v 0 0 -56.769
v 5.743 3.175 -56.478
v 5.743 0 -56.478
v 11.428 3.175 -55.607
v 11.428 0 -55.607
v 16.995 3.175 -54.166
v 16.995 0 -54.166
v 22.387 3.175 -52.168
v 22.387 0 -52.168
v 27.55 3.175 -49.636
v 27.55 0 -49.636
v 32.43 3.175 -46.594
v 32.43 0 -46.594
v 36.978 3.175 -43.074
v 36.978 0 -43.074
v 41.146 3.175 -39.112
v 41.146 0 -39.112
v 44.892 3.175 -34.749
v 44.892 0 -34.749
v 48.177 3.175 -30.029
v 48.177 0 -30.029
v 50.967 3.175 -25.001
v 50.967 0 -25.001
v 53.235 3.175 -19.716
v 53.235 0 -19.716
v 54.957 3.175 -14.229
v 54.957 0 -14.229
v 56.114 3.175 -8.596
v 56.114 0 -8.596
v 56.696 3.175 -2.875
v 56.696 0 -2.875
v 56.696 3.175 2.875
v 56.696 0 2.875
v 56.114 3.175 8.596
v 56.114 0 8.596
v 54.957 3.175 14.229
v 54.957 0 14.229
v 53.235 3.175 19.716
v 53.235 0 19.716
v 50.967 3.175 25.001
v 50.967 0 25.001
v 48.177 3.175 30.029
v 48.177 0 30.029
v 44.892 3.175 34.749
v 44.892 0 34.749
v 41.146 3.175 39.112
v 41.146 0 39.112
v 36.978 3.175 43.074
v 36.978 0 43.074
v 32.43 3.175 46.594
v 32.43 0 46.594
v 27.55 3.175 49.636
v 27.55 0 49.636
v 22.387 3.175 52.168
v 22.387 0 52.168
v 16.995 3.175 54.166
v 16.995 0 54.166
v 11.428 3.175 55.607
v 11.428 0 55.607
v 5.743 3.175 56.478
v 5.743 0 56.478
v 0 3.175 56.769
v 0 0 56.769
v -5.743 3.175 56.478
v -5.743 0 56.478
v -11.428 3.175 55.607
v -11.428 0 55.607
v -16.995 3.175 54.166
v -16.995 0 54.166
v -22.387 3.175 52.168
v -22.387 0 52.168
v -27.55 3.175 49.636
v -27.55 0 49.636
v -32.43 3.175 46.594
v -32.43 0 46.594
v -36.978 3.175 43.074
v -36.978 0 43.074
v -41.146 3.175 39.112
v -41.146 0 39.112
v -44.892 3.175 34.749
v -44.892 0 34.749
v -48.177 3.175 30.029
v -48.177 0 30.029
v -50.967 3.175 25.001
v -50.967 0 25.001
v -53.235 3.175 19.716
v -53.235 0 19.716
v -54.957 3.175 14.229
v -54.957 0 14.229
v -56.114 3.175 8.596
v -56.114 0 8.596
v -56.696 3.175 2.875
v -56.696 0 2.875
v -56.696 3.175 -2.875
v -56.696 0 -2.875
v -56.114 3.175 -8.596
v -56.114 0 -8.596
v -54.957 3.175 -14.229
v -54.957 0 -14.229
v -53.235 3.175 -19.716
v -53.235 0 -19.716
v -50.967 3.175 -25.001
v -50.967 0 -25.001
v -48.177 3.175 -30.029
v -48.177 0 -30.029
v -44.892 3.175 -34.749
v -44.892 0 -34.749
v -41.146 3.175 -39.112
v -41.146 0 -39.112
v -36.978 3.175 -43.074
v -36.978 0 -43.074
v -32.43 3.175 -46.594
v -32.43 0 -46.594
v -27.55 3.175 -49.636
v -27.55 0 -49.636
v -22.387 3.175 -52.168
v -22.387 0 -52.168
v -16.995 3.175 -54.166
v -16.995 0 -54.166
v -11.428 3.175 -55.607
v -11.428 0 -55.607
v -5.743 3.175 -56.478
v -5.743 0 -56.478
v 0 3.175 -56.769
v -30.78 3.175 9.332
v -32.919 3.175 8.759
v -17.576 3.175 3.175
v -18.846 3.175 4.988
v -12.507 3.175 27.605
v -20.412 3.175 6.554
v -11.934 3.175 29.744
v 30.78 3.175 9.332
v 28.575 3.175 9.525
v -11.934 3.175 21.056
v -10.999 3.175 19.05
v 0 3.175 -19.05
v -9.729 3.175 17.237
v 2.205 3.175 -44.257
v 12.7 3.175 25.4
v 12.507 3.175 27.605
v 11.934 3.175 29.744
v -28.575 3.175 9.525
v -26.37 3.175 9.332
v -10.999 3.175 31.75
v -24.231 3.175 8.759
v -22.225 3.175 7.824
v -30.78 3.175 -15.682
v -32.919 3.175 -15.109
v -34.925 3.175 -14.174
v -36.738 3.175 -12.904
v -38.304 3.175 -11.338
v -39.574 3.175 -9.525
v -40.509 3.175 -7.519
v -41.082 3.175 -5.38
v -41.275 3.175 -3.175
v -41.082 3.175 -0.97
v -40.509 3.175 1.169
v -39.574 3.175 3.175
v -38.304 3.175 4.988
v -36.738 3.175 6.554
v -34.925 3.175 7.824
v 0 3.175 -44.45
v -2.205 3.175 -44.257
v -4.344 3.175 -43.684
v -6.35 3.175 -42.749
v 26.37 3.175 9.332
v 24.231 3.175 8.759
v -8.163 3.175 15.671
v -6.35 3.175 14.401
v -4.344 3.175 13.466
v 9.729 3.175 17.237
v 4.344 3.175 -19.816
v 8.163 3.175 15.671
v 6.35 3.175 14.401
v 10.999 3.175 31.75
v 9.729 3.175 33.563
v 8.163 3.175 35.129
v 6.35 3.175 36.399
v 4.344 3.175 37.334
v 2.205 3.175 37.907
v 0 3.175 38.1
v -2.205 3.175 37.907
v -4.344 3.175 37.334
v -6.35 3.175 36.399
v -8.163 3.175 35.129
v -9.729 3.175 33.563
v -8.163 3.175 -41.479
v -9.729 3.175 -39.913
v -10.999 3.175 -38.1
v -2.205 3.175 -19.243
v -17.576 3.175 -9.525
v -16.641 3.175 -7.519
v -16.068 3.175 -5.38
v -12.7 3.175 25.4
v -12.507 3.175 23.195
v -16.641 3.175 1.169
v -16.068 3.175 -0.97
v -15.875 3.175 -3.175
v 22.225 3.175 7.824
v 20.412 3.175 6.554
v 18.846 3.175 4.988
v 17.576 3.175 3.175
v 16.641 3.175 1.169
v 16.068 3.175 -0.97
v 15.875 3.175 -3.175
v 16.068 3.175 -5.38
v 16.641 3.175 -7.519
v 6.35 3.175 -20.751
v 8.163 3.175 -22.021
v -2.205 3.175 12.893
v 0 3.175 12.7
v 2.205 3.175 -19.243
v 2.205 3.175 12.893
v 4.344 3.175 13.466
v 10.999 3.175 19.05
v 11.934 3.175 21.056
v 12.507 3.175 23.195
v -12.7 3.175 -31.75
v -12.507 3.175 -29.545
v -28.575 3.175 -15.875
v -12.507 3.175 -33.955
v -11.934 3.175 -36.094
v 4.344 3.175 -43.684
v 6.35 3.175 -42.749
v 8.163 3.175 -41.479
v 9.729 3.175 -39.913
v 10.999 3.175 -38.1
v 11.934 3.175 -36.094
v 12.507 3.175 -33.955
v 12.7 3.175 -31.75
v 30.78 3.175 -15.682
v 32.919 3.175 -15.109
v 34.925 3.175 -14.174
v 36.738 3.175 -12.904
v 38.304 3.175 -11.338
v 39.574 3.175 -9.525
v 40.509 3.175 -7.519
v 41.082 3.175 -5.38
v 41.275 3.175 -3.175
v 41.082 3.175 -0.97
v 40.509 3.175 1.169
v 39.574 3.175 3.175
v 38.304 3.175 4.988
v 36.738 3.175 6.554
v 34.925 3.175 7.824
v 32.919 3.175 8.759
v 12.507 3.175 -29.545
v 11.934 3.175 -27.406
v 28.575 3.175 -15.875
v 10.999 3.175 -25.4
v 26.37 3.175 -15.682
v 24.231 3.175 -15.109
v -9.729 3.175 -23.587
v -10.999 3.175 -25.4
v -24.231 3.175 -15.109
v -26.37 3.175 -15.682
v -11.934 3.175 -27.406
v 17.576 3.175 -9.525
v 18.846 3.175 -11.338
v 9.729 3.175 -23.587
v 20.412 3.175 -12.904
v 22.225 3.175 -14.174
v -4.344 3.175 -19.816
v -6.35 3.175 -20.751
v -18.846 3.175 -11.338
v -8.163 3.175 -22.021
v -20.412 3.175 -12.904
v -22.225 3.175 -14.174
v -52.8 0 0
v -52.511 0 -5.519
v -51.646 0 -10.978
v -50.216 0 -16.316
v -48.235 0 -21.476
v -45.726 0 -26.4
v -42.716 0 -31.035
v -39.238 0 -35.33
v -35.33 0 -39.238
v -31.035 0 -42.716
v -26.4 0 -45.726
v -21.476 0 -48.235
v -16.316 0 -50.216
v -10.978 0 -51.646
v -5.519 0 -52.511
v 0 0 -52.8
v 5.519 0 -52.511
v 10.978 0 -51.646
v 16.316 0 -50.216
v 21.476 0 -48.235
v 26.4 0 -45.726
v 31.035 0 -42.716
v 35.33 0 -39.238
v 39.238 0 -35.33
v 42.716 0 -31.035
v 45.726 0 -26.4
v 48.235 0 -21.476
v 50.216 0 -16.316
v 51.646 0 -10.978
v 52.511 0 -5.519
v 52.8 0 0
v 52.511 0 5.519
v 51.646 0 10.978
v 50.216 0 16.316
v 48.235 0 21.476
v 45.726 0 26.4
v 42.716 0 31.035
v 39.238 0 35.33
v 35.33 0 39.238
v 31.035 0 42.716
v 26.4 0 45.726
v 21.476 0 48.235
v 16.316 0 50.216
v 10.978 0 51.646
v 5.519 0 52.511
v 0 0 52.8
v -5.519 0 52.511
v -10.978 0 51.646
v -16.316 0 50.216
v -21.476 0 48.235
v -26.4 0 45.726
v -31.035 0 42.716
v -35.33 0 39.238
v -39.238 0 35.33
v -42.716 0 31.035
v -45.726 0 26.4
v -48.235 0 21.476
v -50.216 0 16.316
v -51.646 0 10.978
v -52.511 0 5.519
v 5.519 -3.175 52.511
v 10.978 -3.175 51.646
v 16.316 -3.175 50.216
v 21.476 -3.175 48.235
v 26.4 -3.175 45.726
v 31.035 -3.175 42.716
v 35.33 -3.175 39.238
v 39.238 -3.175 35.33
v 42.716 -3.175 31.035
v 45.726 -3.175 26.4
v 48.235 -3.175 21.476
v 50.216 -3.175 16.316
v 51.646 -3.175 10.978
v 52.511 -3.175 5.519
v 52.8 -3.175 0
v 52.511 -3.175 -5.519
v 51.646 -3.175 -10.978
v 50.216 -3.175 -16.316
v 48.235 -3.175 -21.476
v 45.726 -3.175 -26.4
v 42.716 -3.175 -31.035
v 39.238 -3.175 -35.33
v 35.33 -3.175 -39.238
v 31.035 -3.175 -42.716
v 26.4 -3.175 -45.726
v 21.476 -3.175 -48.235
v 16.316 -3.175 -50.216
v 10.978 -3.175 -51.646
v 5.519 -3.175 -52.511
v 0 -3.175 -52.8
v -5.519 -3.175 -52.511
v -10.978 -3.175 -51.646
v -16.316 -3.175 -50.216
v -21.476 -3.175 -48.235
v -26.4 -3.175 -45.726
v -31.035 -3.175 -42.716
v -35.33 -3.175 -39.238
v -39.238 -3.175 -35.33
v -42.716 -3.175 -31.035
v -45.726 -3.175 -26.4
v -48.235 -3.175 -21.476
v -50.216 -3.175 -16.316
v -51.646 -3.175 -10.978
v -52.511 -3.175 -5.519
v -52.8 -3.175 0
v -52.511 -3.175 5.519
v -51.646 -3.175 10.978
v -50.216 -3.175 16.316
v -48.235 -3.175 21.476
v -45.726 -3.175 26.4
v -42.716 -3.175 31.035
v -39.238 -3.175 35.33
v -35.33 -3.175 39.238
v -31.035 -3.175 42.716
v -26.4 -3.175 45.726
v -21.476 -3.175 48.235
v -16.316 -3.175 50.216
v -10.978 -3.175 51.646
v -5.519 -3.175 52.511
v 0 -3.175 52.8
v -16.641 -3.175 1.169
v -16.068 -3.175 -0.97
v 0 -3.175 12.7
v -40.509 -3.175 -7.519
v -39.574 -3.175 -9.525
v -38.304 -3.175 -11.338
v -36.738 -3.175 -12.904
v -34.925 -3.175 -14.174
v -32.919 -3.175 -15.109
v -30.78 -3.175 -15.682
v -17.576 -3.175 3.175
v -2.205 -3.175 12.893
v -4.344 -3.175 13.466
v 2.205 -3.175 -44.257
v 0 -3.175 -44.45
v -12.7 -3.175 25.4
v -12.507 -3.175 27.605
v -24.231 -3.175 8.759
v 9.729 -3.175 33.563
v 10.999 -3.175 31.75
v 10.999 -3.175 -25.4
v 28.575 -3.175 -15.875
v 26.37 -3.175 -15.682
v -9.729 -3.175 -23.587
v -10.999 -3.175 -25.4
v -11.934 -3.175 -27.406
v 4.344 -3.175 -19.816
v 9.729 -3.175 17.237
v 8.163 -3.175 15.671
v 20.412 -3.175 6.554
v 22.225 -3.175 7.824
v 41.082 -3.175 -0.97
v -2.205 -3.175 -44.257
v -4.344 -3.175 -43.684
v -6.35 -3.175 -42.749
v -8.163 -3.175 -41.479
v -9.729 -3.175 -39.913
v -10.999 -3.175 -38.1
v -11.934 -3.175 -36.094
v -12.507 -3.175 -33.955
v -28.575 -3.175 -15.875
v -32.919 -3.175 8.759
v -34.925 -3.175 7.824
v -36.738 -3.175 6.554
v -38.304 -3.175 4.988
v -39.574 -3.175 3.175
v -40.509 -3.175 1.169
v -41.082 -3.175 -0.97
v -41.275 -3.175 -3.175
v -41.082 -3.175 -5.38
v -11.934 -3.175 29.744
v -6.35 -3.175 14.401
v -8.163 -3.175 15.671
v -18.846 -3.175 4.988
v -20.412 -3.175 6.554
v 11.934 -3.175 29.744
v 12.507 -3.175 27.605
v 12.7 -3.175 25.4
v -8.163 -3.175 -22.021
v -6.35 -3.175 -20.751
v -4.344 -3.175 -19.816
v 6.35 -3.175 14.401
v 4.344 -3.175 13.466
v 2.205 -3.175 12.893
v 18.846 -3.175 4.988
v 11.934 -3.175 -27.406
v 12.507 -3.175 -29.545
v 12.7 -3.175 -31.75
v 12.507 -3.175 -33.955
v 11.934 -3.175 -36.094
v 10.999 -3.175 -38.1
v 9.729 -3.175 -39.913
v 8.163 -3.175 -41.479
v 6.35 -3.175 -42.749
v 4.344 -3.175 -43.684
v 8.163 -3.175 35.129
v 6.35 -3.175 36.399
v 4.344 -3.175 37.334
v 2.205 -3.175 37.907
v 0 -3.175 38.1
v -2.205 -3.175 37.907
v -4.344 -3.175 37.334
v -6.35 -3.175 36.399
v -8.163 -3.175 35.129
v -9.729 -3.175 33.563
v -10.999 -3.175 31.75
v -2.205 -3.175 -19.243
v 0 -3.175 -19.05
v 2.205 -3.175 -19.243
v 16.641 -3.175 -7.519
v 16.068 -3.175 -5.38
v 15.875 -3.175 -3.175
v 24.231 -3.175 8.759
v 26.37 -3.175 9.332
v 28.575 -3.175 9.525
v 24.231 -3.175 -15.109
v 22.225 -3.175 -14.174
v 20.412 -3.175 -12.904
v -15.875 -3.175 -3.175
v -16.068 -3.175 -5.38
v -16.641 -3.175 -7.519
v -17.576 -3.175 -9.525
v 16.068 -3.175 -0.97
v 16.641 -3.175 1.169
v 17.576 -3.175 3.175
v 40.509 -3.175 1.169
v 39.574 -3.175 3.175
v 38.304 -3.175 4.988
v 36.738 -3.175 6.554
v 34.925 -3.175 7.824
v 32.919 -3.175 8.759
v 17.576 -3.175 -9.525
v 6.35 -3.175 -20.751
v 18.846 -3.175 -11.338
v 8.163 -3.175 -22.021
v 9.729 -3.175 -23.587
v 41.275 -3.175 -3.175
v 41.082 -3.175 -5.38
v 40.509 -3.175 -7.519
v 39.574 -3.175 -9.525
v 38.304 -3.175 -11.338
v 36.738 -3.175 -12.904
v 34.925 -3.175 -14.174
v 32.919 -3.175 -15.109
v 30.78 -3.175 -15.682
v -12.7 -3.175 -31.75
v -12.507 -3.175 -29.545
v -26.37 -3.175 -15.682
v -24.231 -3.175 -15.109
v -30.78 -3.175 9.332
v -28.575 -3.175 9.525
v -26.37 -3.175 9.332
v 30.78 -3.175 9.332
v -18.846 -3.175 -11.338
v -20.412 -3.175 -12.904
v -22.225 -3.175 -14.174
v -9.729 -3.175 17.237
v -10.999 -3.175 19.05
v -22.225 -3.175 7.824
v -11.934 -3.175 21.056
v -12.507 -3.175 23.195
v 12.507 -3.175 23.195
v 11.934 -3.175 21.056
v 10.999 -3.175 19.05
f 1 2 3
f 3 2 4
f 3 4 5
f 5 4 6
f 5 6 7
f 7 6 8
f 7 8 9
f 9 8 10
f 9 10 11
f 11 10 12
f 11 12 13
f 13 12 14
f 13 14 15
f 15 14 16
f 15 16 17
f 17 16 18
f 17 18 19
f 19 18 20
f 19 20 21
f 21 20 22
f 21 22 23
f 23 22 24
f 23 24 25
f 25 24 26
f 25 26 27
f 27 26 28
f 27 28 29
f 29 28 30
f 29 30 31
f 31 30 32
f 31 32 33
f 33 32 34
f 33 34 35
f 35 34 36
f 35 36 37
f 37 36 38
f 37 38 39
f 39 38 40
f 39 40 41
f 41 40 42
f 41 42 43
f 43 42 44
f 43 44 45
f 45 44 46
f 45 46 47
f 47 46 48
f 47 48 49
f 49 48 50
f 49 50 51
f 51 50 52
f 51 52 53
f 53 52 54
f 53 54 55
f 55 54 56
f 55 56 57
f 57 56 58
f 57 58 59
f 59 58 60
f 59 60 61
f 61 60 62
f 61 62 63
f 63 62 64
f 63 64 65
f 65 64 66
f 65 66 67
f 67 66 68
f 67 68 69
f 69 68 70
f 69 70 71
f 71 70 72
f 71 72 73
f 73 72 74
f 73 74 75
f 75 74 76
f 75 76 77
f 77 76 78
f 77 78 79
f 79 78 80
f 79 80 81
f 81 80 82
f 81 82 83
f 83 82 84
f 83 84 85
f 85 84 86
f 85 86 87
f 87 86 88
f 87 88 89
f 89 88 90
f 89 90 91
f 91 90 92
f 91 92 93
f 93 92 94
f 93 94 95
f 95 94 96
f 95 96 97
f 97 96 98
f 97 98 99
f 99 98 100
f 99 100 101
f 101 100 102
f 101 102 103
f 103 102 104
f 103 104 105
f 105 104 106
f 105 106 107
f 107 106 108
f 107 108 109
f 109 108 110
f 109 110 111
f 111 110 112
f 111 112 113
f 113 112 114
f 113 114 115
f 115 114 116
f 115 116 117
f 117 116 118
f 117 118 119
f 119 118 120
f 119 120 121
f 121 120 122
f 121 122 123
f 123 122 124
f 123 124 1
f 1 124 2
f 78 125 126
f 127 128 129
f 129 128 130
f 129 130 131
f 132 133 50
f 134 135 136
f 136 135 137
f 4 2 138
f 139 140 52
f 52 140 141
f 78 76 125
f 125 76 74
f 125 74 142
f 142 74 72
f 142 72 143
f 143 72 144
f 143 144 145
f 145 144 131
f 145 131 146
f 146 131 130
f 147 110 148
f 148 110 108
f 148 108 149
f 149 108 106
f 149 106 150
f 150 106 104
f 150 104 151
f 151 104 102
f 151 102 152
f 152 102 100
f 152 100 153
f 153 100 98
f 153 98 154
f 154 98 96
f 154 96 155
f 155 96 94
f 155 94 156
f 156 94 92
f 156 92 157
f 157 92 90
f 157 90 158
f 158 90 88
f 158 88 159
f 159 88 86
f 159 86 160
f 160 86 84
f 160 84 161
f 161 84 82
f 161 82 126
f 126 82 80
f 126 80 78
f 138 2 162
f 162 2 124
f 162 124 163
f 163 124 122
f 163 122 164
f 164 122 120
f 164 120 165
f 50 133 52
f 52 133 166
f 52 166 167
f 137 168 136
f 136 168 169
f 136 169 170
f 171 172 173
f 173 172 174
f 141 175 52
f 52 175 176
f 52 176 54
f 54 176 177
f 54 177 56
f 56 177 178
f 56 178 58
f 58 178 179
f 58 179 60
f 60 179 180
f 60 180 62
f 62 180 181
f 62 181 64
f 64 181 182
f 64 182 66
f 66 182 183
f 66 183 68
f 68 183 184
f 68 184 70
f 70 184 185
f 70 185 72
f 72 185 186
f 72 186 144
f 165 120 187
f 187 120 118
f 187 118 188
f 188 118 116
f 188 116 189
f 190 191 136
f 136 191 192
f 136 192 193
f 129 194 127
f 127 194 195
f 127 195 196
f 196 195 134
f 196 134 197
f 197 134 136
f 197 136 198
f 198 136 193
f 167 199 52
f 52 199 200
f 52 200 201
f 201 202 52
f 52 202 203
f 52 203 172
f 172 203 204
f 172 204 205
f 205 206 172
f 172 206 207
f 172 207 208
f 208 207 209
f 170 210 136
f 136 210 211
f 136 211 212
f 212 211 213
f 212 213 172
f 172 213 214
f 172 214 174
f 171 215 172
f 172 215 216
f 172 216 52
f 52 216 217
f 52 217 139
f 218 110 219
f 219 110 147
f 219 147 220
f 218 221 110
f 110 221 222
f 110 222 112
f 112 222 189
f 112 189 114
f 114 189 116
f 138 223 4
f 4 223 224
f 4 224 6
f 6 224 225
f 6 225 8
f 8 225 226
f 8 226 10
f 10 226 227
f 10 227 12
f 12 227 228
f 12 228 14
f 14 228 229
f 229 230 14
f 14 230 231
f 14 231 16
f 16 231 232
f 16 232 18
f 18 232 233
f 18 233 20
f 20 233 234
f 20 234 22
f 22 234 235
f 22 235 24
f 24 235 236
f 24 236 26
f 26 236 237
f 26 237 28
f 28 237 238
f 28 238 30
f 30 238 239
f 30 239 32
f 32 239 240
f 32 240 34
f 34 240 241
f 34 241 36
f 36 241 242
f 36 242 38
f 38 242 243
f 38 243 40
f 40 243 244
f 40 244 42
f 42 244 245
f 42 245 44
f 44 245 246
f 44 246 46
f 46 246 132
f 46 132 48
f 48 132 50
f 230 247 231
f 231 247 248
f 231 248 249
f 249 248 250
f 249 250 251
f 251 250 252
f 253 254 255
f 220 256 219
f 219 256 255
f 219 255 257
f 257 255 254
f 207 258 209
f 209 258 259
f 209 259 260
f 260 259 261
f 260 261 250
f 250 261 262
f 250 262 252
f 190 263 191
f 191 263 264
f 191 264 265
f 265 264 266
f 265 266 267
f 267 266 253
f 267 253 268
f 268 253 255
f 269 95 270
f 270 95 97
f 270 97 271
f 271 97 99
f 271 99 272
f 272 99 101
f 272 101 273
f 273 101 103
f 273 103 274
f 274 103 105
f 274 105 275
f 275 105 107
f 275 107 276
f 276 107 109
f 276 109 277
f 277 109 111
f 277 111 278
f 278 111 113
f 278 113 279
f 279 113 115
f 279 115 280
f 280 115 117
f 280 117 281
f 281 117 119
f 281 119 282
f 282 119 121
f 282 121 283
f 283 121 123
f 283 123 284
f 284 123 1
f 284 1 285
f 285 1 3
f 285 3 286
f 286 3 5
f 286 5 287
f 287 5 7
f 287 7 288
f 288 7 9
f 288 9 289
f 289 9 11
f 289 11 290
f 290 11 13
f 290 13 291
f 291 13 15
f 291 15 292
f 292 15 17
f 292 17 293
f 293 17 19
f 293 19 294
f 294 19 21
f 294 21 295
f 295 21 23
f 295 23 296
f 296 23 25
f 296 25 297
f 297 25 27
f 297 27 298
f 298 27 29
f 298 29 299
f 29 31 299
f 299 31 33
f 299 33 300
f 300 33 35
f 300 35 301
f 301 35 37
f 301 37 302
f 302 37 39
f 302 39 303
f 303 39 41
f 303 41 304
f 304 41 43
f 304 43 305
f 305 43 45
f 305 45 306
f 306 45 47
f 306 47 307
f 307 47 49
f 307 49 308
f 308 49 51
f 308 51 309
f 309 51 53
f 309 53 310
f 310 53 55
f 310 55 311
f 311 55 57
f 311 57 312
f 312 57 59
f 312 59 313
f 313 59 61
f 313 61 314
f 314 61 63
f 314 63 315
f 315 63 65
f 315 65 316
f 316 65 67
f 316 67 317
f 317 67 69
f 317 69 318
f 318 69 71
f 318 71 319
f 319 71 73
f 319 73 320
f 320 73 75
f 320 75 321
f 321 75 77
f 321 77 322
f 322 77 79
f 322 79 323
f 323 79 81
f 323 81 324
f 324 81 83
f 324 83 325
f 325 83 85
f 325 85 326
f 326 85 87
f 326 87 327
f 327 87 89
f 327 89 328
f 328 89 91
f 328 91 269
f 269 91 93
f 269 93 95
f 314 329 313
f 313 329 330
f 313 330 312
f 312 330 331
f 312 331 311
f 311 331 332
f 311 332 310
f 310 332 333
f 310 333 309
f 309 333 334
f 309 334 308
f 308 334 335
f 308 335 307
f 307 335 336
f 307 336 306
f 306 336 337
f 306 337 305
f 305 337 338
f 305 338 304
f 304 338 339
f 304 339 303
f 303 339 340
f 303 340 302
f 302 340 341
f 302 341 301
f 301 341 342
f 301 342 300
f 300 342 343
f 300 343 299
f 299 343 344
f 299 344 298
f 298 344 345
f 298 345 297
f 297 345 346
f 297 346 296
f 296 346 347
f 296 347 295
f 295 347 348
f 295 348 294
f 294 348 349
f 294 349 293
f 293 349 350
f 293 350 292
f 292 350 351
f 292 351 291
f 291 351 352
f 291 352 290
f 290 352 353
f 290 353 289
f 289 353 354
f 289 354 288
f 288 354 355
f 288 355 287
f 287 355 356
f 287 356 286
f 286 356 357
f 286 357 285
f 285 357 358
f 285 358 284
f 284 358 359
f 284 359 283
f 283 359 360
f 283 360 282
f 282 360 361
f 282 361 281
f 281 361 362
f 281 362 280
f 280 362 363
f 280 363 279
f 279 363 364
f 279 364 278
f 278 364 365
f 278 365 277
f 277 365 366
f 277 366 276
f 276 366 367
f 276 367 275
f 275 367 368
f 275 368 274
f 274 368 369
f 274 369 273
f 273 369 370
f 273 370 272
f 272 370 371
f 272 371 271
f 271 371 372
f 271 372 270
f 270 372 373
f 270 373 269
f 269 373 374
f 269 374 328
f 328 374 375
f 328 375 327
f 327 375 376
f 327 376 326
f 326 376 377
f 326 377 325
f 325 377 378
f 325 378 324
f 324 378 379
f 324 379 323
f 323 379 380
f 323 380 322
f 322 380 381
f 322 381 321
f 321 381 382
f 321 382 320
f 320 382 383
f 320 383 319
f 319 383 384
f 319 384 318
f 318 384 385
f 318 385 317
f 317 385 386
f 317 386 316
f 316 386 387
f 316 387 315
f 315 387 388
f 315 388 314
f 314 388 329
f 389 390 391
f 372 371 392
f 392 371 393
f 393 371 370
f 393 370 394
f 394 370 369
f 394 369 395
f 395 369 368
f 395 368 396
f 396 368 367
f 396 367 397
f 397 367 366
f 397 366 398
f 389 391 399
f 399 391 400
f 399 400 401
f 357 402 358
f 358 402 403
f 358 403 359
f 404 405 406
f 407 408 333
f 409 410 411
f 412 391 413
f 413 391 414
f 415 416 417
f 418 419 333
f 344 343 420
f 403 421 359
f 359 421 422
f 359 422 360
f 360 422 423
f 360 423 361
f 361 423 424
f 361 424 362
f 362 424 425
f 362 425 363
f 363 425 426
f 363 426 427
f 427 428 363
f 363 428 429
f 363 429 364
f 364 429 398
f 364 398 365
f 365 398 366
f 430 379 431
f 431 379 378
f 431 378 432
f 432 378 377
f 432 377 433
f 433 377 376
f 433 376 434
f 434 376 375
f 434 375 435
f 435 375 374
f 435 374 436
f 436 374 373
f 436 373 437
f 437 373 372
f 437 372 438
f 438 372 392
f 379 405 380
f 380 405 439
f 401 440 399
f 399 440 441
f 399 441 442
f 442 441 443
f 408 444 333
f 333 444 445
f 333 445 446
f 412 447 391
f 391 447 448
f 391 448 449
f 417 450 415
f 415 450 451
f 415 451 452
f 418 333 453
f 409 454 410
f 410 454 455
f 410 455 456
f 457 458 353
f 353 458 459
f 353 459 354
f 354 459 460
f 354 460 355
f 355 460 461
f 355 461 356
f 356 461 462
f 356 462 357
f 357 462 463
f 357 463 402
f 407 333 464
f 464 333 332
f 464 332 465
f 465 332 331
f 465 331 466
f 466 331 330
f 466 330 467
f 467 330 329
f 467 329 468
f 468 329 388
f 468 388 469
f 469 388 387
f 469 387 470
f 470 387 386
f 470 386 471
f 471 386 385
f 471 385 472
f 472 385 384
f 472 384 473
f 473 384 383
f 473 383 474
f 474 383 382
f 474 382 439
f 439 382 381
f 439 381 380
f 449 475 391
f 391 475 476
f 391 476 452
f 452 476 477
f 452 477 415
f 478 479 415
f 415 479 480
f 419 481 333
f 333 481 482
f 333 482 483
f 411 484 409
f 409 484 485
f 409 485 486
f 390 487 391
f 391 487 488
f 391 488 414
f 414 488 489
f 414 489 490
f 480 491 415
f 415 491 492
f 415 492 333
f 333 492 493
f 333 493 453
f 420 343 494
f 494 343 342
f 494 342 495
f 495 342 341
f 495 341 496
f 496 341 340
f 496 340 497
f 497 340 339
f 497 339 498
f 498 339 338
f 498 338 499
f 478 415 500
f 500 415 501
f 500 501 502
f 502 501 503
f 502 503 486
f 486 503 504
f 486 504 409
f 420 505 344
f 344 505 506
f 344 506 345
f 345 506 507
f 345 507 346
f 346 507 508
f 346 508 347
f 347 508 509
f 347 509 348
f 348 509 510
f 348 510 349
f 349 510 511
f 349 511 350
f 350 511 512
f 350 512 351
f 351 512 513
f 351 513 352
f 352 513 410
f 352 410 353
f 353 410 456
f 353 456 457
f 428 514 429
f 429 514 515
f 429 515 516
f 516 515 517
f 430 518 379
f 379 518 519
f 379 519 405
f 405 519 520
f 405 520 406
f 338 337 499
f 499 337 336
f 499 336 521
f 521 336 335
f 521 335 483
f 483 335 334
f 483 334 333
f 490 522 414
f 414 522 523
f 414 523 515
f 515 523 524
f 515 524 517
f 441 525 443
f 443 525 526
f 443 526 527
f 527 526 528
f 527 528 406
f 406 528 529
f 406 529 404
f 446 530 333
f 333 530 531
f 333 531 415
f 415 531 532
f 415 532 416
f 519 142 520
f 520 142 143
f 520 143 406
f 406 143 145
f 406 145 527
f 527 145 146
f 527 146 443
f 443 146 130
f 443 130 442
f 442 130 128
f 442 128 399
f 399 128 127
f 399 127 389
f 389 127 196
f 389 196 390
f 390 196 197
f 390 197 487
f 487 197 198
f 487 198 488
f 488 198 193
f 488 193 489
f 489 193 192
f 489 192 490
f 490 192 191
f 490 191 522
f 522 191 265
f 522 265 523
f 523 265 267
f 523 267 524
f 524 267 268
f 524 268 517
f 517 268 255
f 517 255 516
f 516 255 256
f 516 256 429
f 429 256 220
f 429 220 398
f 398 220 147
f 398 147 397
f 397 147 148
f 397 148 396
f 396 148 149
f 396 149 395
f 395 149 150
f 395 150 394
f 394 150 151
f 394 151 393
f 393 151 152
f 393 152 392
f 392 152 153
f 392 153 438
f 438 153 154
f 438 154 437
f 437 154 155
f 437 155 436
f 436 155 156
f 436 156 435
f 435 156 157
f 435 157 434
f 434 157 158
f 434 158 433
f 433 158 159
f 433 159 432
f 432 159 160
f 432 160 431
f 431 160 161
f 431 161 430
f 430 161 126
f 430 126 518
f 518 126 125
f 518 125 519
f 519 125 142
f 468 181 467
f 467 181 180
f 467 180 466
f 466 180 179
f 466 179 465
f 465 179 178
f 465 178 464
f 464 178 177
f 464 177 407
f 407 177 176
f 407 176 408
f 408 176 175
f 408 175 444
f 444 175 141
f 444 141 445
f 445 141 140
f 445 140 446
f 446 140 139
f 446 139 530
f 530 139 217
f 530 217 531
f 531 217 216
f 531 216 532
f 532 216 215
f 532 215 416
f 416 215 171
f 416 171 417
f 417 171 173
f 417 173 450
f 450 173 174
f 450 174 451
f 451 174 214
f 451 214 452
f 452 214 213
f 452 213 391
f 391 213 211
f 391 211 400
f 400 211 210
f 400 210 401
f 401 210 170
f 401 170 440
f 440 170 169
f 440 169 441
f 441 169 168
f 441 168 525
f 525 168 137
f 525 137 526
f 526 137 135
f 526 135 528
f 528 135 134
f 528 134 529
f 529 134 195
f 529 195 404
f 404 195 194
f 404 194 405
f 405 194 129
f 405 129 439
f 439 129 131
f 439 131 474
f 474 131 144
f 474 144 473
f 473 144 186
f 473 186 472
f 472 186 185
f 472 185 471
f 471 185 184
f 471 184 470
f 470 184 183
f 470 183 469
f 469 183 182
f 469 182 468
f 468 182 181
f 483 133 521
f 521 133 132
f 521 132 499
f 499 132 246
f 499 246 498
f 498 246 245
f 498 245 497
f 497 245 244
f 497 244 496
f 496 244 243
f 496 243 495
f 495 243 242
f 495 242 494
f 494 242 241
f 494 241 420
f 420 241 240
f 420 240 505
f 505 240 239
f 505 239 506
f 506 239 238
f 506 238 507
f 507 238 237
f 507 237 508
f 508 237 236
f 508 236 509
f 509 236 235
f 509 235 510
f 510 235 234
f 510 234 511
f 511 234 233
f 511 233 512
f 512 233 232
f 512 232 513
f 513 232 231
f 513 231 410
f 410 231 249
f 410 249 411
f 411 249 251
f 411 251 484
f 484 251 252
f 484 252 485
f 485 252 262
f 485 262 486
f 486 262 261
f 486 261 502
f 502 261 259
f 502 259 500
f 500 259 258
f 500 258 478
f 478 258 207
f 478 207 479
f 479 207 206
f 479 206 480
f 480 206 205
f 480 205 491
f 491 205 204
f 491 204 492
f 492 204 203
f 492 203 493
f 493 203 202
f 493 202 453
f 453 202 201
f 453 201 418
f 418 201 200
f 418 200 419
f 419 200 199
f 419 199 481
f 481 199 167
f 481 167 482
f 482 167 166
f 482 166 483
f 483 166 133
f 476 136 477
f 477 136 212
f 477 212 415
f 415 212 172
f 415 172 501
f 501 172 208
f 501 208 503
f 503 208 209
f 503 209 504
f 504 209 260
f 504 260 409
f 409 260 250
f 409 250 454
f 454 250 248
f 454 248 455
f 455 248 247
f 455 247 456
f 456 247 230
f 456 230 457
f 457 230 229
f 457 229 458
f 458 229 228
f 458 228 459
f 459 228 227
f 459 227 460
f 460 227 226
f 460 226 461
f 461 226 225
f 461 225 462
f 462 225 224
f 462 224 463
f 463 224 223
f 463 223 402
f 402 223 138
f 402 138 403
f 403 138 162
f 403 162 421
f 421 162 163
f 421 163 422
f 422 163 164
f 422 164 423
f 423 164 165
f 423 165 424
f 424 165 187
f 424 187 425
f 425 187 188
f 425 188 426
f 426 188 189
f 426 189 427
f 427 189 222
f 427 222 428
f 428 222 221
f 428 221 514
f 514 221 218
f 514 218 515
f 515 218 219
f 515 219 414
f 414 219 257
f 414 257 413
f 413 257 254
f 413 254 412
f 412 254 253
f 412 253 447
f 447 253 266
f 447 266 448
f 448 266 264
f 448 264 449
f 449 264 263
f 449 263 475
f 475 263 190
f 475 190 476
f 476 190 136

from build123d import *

# Parameters (mm, degrees)
SKETCH1_R           = 56.769
BOSS_EXTRUDE1_DEPTH = 3.175
SKETCH1_3_R         = 52.80025
BOSS_EXTRUDE2_DEPTH = 3.175
SKETCH2_R           = 12.7
CUT_EXTRUDE1_DEPTH  = 81.534223918


with BuildPart() as part:
    # Sketch1 → Boss-Extrude1 (new body)
    with BuildSketch(Plane(origin=(0, 0, 0), x_dir=(1, 0, 0), z_dir=(0, 1, 0))):
        Circle(SKETCH1_R)
    extrude(amount=BOSS_EXTRUDE1_DEPTH)

    # Sketch1<3> → Boss-Extrude2 (add)
    with BuildSketch(Plane(origin=(0, 0, 0), x_dir=(1, 0, 0), z_dir=(0, 1, 0))):
        Circle(SKETCH1_3_R)
    extrude(amount=-BOSS_EXTRUDE2_DEPTH)

    # Sketch2 → Cut-Extrude1 (cut, through all)
    with BuildSketch(Plane(origin=(0, 3.175, 0), x_dir=(1, 0, 0), z_dir=(0, 1, 0))):
        with Locations((0, 31.75)):
            Circle(SKETCH2_R)
        with Locations((28.575, 3.175)):
            Circle(SKETCH2_R)
        with Locations((0, -25.4)):
            Circle(SKETCH2_R)
        with Locations((-28.575, 3.175)):
            Circle(SKETCH2_R)
    extrude(amount=-CUT_EXTRUDE1_DEPTH, mode=Mode.SUBTRACT)


solid = part.part
